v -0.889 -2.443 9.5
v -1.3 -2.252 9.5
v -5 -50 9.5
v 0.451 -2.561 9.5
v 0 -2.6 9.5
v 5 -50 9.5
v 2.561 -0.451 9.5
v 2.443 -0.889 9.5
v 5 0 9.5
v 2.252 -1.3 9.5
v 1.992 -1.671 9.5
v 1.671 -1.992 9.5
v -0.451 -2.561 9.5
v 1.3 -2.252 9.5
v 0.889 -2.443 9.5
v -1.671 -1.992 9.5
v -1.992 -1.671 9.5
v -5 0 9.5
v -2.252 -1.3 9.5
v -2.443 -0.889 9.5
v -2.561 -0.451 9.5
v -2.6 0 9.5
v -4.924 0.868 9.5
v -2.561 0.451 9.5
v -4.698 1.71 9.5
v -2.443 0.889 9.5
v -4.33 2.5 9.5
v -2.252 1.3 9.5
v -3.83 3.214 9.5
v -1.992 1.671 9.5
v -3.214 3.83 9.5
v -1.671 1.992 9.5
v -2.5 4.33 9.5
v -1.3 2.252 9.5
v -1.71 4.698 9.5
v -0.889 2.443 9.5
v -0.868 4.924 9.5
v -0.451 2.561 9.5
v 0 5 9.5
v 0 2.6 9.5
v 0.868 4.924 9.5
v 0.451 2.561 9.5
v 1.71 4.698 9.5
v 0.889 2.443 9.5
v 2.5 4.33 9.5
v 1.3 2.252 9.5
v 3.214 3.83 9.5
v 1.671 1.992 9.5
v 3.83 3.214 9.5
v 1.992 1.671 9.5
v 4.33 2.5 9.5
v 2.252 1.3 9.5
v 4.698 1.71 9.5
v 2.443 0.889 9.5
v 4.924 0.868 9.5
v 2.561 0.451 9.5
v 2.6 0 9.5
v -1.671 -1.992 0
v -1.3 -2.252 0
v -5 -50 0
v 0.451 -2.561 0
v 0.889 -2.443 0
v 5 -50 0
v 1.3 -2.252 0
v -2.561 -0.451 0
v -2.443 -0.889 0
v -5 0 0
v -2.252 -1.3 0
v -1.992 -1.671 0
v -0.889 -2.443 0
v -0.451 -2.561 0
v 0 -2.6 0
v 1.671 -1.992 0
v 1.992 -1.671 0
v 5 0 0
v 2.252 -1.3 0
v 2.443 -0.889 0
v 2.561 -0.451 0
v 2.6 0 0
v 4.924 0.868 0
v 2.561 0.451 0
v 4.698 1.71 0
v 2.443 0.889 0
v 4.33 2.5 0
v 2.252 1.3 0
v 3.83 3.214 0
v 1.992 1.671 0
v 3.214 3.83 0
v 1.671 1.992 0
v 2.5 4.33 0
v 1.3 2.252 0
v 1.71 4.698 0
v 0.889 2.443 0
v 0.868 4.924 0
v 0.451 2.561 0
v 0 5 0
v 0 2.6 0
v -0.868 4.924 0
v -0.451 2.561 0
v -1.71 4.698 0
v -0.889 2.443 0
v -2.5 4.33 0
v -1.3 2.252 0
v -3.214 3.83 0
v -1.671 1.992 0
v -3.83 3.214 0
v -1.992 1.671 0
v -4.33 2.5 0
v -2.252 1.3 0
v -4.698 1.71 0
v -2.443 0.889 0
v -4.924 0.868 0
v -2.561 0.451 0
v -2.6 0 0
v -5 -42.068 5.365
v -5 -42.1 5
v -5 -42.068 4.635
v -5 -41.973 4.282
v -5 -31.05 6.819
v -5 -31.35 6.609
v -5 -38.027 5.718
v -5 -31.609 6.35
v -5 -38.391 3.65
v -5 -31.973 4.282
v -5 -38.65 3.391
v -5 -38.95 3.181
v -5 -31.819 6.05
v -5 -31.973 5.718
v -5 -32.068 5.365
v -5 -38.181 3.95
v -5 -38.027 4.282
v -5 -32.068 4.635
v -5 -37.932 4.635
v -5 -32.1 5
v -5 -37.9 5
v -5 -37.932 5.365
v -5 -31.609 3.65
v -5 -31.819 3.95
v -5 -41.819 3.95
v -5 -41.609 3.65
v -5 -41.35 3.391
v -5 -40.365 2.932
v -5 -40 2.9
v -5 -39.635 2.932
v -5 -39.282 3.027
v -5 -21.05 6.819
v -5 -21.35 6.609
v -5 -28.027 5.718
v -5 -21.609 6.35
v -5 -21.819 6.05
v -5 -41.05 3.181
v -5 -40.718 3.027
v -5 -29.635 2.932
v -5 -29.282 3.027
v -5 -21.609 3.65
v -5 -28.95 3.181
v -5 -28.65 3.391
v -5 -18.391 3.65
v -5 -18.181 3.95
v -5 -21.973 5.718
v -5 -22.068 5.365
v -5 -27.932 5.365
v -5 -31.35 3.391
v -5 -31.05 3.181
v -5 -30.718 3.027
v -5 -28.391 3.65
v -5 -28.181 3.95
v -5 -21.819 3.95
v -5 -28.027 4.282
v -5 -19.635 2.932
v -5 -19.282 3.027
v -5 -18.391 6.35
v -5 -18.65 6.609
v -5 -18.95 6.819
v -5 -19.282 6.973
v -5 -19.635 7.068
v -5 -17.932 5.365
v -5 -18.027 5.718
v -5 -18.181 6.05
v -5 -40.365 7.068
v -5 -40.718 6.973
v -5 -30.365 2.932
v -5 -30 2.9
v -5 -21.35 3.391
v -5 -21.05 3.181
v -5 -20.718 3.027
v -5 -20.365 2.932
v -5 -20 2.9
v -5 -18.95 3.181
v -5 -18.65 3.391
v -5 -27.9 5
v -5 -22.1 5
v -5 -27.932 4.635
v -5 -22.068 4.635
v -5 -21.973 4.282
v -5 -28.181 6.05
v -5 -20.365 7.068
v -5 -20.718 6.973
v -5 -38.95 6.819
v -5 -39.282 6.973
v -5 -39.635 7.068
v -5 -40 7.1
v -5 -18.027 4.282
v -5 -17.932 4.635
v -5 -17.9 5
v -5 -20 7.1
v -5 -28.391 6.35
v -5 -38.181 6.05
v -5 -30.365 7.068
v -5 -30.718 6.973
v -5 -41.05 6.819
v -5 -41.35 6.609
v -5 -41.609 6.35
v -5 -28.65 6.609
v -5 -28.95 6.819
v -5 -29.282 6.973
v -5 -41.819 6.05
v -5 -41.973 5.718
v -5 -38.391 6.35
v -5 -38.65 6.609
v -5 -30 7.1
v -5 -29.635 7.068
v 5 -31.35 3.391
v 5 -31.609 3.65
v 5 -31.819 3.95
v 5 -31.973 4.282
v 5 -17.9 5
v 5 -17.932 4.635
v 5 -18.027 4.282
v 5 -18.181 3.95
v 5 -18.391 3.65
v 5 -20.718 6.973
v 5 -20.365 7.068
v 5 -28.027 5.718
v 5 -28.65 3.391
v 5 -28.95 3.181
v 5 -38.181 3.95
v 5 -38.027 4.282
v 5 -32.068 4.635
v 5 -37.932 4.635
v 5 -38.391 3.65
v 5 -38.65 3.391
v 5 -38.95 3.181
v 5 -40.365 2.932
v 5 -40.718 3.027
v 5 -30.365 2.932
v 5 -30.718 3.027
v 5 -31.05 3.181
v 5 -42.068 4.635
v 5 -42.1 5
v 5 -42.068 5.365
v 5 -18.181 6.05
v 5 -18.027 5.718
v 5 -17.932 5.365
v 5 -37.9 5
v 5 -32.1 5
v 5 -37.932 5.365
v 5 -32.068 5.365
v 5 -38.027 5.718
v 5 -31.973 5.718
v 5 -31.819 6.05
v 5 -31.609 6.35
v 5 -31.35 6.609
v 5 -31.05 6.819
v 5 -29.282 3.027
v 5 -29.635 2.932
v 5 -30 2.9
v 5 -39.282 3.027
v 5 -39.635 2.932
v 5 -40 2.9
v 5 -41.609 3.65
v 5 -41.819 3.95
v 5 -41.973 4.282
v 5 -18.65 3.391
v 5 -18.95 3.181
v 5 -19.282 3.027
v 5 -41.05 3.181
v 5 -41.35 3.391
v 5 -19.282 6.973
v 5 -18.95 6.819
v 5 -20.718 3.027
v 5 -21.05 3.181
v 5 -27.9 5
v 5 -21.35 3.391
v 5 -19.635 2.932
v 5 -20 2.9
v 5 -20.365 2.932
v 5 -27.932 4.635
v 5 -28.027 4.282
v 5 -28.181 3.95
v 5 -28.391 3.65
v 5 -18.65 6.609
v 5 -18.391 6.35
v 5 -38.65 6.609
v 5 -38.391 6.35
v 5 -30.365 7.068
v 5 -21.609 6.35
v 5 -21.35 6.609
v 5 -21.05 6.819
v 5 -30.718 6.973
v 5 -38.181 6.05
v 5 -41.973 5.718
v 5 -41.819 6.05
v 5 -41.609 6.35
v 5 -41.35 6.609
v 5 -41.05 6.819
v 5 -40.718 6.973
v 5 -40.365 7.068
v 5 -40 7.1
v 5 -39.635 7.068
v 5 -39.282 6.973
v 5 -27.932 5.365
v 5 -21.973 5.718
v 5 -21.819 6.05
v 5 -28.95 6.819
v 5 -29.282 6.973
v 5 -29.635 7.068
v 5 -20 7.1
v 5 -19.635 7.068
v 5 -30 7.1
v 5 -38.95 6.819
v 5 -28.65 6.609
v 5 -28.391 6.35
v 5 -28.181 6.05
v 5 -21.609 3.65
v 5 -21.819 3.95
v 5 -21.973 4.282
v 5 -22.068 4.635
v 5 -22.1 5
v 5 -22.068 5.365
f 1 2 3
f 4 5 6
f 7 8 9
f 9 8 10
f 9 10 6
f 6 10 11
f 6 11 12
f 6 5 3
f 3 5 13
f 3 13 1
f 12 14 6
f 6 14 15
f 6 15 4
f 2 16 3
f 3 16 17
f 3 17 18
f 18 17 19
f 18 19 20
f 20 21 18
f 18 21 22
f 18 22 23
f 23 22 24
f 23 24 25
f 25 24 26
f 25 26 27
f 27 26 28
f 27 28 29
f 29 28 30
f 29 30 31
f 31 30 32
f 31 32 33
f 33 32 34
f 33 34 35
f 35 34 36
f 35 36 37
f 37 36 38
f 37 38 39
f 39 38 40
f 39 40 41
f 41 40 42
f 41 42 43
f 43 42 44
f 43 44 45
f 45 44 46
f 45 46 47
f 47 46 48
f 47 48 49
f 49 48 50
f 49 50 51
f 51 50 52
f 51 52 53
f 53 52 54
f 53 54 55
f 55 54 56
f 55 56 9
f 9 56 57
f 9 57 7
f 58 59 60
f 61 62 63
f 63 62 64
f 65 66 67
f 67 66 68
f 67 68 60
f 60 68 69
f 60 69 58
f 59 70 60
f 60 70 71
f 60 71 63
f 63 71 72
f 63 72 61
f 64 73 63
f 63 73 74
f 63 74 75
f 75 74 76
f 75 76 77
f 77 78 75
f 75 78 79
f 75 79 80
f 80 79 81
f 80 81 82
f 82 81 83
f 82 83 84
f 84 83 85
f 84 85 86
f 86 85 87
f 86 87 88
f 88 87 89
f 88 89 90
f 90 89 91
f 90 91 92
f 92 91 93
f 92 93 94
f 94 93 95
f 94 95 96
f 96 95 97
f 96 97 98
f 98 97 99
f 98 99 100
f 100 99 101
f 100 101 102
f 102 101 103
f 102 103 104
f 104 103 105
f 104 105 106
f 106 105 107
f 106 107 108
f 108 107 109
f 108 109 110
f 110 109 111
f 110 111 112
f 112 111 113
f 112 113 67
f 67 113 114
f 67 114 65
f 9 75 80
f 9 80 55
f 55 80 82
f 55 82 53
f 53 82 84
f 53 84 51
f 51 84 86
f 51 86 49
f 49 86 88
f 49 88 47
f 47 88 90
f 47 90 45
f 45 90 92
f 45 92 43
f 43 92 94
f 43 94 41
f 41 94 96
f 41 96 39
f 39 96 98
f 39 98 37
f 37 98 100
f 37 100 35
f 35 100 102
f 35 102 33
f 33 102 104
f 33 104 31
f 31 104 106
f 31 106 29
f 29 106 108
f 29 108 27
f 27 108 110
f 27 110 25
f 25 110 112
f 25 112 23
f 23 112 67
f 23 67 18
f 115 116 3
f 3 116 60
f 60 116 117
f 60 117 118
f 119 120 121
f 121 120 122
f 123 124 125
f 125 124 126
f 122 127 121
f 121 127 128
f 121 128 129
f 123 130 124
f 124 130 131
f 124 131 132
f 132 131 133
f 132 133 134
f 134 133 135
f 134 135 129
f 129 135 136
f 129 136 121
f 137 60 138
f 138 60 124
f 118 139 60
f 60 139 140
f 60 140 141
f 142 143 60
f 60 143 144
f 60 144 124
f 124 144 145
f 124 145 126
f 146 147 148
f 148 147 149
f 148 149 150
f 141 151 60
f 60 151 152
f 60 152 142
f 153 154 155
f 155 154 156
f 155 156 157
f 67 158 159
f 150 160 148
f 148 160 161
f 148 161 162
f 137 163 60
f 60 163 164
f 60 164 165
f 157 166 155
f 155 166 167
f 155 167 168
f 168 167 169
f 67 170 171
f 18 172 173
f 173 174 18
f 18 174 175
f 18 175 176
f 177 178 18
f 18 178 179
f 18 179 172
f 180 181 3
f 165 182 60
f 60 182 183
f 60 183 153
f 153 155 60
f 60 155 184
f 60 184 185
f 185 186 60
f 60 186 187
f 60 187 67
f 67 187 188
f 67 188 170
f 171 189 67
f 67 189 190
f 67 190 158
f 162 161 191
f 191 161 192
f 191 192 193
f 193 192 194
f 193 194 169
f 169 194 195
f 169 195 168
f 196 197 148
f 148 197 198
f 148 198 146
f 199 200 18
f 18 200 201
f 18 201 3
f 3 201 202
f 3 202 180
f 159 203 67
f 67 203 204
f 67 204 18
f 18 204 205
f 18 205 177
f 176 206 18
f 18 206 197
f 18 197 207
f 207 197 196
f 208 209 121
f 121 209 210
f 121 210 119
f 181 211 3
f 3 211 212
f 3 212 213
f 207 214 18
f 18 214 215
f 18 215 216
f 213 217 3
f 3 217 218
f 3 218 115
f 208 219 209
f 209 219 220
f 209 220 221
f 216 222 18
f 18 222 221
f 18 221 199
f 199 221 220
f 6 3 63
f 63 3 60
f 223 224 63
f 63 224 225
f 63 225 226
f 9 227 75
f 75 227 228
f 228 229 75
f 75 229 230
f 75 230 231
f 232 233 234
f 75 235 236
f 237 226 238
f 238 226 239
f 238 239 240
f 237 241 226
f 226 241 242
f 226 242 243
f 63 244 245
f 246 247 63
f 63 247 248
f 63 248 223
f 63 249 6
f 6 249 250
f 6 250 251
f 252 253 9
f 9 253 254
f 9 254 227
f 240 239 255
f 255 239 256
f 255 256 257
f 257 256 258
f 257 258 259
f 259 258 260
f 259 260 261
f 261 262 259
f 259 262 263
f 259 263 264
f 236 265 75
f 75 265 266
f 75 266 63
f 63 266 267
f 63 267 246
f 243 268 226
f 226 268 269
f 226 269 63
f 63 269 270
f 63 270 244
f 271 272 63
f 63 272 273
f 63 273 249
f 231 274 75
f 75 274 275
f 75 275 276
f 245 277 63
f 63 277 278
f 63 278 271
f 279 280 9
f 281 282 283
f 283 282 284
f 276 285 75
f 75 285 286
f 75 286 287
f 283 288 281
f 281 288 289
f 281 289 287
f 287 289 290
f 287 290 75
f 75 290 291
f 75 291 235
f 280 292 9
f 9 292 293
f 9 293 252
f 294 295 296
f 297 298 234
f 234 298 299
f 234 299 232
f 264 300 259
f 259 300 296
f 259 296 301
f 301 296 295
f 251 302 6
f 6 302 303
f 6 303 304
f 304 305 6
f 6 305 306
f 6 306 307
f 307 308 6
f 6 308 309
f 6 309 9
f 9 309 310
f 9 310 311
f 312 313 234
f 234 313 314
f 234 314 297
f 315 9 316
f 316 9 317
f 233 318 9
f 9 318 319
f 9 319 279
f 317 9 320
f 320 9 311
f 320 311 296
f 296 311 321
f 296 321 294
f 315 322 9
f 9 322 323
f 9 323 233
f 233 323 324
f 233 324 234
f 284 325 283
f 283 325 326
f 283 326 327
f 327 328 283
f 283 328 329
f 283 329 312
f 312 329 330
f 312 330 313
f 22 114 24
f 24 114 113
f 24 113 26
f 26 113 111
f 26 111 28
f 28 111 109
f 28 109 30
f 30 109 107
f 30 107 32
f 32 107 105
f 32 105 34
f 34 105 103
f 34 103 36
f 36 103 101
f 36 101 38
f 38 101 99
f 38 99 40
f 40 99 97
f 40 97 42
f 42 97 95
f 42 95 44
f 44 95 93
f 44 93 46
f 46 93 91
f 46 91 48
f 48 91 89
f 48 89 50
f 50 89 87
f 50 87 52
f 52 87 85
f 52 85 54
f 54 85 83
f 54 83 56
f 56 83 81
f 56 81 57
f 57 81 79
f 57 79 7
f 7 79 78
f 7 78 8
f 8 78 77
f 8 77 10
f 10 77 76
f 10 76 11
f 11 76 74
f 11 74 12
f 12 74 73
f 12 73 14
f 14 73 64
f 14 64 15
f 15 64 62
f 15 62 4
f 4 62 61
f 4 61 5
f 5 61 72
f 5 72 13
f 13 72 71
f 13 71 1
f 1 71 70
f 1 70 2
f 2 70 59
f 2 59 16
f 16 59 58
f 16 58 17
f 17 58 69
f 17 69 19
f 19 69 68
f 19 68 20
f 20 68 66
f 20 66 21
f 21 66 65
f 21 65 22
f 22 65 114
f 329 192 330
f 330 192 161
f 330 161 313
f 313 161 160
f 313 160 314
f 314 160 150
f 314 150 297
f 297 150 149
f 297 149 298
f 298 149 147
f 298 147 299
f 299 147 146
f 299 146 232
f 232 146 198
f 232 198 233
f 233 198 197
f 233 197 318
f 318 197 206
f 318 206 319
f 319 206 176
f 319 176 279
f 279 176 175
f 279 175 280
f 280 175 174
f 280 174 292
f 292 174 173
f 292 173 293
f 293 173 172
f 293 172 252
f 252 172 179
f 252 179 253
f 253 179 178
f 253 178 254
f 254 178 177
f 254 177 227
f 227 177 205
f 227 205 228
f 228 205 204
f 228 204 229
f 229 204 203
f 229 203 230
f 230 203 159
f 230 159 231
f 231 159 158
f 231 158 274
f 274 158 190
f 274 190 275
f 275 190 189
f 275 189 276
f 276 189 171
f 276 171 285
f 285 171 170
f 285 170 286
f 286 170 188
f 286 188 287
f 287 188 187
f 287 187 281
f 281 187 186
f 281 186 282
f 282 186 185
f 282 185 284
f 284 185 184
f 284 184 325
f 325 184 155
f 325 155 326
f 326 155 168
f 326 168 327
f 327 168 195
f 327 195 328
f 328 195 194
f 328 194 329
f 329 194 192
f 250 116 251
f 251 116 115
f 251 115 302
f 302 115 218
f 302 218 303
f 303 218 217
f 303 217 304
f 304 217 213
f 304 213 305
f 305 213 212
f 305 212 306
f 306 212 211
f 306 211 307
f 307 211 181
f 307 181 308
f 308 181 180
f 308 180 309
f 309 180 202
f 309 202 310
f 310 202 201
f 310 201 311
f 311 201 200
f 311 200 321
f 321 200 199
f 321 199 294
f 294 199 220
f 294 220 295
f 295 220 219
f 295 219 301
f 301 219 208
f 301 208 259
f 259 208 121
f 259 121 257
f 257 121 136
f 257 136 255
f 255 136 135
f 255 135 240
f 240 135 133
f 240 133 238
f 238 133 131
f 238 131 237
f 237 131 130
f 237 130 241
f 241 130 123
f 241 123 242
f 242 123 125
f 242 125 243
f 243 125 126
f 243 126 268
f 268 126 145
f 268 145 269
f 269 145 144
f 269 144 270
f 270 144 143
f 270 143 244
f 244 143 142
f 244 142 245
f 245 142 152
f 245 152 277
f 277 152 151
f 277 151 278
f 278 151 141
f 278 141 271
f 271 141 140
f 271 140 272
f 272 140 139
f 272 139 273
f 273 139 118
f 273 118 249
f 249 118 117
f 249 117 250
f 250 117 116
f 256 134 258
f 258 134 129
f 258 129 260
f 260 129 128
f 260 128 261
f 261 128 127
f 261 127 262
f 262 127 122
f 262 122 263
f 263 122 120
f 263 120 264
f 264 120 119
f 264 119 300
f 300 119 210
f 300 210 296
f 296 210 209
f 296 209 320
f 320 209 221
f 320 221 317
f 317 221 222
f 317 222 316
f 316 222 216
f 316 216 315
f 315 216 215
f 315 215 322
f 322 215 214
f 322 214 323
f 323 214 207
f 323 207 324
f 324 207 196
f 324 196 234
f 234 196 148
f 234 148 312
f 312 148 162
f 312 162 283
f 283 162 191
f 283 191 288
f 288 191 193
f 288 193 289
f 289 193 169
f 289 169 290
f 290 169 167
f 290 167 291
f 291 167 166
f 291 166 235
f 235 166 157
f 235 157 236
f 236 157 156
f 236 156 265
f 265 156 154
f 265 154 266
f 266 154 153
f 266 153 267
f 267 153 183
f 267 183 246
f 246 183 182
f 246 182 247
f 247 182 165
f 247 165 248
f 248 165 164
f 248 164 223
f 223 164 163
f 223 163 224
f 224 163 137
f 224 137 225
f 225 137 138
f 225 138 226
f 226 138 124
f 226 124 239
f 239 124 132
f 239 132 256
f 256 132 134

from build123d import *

# Parameters (mm, degrees)
SKETCH_1_R          = 2.6
EXTRUDE_1_DEPTH     = 9.5
SKETCH_2_R          = 2.1
CUT_EXTRUDE_1_DEPTH = 10


with BuildPart() as part:
    # 草图1 → 凸台-拉伸1 (new body)
    with BuildSketch(Plane.XY):
        with BuildLine():
            Line((-5, 0), (-5, -50))
            Line((-5, -50), (5, -50))
            Line((5, -50), (5, 0))
            ThreePointArc((5, 0), (0, 5), (-5, 0))
        make_face()
        Circle(SKETCH_1_R, mode=Mode.SUBTRACT)
    extrude(amount=EXTRUDE_1_DEPTH)

    # 草图2 → 切除-拉伸1 (cut)
    with BuildSketch(Plane.ZY.offset(5)):
        with Locations(Location((5, -20, 0), (0, 0, 270))):
            Circle(SKETCH_2_R)
        with Locations(Location((5, -30, 0), (0, 0, 270))):
            Circle(SKETCH_2_R)
        with Locations(Location((5, -40, 0), (0, 0, 270))):
            Circle(SKETCH_2_R)
    extrude(amount=-CUT_EXTRUDE_1_DEPTH, mode=Mode.SUBTRACT)


solid = part.part
